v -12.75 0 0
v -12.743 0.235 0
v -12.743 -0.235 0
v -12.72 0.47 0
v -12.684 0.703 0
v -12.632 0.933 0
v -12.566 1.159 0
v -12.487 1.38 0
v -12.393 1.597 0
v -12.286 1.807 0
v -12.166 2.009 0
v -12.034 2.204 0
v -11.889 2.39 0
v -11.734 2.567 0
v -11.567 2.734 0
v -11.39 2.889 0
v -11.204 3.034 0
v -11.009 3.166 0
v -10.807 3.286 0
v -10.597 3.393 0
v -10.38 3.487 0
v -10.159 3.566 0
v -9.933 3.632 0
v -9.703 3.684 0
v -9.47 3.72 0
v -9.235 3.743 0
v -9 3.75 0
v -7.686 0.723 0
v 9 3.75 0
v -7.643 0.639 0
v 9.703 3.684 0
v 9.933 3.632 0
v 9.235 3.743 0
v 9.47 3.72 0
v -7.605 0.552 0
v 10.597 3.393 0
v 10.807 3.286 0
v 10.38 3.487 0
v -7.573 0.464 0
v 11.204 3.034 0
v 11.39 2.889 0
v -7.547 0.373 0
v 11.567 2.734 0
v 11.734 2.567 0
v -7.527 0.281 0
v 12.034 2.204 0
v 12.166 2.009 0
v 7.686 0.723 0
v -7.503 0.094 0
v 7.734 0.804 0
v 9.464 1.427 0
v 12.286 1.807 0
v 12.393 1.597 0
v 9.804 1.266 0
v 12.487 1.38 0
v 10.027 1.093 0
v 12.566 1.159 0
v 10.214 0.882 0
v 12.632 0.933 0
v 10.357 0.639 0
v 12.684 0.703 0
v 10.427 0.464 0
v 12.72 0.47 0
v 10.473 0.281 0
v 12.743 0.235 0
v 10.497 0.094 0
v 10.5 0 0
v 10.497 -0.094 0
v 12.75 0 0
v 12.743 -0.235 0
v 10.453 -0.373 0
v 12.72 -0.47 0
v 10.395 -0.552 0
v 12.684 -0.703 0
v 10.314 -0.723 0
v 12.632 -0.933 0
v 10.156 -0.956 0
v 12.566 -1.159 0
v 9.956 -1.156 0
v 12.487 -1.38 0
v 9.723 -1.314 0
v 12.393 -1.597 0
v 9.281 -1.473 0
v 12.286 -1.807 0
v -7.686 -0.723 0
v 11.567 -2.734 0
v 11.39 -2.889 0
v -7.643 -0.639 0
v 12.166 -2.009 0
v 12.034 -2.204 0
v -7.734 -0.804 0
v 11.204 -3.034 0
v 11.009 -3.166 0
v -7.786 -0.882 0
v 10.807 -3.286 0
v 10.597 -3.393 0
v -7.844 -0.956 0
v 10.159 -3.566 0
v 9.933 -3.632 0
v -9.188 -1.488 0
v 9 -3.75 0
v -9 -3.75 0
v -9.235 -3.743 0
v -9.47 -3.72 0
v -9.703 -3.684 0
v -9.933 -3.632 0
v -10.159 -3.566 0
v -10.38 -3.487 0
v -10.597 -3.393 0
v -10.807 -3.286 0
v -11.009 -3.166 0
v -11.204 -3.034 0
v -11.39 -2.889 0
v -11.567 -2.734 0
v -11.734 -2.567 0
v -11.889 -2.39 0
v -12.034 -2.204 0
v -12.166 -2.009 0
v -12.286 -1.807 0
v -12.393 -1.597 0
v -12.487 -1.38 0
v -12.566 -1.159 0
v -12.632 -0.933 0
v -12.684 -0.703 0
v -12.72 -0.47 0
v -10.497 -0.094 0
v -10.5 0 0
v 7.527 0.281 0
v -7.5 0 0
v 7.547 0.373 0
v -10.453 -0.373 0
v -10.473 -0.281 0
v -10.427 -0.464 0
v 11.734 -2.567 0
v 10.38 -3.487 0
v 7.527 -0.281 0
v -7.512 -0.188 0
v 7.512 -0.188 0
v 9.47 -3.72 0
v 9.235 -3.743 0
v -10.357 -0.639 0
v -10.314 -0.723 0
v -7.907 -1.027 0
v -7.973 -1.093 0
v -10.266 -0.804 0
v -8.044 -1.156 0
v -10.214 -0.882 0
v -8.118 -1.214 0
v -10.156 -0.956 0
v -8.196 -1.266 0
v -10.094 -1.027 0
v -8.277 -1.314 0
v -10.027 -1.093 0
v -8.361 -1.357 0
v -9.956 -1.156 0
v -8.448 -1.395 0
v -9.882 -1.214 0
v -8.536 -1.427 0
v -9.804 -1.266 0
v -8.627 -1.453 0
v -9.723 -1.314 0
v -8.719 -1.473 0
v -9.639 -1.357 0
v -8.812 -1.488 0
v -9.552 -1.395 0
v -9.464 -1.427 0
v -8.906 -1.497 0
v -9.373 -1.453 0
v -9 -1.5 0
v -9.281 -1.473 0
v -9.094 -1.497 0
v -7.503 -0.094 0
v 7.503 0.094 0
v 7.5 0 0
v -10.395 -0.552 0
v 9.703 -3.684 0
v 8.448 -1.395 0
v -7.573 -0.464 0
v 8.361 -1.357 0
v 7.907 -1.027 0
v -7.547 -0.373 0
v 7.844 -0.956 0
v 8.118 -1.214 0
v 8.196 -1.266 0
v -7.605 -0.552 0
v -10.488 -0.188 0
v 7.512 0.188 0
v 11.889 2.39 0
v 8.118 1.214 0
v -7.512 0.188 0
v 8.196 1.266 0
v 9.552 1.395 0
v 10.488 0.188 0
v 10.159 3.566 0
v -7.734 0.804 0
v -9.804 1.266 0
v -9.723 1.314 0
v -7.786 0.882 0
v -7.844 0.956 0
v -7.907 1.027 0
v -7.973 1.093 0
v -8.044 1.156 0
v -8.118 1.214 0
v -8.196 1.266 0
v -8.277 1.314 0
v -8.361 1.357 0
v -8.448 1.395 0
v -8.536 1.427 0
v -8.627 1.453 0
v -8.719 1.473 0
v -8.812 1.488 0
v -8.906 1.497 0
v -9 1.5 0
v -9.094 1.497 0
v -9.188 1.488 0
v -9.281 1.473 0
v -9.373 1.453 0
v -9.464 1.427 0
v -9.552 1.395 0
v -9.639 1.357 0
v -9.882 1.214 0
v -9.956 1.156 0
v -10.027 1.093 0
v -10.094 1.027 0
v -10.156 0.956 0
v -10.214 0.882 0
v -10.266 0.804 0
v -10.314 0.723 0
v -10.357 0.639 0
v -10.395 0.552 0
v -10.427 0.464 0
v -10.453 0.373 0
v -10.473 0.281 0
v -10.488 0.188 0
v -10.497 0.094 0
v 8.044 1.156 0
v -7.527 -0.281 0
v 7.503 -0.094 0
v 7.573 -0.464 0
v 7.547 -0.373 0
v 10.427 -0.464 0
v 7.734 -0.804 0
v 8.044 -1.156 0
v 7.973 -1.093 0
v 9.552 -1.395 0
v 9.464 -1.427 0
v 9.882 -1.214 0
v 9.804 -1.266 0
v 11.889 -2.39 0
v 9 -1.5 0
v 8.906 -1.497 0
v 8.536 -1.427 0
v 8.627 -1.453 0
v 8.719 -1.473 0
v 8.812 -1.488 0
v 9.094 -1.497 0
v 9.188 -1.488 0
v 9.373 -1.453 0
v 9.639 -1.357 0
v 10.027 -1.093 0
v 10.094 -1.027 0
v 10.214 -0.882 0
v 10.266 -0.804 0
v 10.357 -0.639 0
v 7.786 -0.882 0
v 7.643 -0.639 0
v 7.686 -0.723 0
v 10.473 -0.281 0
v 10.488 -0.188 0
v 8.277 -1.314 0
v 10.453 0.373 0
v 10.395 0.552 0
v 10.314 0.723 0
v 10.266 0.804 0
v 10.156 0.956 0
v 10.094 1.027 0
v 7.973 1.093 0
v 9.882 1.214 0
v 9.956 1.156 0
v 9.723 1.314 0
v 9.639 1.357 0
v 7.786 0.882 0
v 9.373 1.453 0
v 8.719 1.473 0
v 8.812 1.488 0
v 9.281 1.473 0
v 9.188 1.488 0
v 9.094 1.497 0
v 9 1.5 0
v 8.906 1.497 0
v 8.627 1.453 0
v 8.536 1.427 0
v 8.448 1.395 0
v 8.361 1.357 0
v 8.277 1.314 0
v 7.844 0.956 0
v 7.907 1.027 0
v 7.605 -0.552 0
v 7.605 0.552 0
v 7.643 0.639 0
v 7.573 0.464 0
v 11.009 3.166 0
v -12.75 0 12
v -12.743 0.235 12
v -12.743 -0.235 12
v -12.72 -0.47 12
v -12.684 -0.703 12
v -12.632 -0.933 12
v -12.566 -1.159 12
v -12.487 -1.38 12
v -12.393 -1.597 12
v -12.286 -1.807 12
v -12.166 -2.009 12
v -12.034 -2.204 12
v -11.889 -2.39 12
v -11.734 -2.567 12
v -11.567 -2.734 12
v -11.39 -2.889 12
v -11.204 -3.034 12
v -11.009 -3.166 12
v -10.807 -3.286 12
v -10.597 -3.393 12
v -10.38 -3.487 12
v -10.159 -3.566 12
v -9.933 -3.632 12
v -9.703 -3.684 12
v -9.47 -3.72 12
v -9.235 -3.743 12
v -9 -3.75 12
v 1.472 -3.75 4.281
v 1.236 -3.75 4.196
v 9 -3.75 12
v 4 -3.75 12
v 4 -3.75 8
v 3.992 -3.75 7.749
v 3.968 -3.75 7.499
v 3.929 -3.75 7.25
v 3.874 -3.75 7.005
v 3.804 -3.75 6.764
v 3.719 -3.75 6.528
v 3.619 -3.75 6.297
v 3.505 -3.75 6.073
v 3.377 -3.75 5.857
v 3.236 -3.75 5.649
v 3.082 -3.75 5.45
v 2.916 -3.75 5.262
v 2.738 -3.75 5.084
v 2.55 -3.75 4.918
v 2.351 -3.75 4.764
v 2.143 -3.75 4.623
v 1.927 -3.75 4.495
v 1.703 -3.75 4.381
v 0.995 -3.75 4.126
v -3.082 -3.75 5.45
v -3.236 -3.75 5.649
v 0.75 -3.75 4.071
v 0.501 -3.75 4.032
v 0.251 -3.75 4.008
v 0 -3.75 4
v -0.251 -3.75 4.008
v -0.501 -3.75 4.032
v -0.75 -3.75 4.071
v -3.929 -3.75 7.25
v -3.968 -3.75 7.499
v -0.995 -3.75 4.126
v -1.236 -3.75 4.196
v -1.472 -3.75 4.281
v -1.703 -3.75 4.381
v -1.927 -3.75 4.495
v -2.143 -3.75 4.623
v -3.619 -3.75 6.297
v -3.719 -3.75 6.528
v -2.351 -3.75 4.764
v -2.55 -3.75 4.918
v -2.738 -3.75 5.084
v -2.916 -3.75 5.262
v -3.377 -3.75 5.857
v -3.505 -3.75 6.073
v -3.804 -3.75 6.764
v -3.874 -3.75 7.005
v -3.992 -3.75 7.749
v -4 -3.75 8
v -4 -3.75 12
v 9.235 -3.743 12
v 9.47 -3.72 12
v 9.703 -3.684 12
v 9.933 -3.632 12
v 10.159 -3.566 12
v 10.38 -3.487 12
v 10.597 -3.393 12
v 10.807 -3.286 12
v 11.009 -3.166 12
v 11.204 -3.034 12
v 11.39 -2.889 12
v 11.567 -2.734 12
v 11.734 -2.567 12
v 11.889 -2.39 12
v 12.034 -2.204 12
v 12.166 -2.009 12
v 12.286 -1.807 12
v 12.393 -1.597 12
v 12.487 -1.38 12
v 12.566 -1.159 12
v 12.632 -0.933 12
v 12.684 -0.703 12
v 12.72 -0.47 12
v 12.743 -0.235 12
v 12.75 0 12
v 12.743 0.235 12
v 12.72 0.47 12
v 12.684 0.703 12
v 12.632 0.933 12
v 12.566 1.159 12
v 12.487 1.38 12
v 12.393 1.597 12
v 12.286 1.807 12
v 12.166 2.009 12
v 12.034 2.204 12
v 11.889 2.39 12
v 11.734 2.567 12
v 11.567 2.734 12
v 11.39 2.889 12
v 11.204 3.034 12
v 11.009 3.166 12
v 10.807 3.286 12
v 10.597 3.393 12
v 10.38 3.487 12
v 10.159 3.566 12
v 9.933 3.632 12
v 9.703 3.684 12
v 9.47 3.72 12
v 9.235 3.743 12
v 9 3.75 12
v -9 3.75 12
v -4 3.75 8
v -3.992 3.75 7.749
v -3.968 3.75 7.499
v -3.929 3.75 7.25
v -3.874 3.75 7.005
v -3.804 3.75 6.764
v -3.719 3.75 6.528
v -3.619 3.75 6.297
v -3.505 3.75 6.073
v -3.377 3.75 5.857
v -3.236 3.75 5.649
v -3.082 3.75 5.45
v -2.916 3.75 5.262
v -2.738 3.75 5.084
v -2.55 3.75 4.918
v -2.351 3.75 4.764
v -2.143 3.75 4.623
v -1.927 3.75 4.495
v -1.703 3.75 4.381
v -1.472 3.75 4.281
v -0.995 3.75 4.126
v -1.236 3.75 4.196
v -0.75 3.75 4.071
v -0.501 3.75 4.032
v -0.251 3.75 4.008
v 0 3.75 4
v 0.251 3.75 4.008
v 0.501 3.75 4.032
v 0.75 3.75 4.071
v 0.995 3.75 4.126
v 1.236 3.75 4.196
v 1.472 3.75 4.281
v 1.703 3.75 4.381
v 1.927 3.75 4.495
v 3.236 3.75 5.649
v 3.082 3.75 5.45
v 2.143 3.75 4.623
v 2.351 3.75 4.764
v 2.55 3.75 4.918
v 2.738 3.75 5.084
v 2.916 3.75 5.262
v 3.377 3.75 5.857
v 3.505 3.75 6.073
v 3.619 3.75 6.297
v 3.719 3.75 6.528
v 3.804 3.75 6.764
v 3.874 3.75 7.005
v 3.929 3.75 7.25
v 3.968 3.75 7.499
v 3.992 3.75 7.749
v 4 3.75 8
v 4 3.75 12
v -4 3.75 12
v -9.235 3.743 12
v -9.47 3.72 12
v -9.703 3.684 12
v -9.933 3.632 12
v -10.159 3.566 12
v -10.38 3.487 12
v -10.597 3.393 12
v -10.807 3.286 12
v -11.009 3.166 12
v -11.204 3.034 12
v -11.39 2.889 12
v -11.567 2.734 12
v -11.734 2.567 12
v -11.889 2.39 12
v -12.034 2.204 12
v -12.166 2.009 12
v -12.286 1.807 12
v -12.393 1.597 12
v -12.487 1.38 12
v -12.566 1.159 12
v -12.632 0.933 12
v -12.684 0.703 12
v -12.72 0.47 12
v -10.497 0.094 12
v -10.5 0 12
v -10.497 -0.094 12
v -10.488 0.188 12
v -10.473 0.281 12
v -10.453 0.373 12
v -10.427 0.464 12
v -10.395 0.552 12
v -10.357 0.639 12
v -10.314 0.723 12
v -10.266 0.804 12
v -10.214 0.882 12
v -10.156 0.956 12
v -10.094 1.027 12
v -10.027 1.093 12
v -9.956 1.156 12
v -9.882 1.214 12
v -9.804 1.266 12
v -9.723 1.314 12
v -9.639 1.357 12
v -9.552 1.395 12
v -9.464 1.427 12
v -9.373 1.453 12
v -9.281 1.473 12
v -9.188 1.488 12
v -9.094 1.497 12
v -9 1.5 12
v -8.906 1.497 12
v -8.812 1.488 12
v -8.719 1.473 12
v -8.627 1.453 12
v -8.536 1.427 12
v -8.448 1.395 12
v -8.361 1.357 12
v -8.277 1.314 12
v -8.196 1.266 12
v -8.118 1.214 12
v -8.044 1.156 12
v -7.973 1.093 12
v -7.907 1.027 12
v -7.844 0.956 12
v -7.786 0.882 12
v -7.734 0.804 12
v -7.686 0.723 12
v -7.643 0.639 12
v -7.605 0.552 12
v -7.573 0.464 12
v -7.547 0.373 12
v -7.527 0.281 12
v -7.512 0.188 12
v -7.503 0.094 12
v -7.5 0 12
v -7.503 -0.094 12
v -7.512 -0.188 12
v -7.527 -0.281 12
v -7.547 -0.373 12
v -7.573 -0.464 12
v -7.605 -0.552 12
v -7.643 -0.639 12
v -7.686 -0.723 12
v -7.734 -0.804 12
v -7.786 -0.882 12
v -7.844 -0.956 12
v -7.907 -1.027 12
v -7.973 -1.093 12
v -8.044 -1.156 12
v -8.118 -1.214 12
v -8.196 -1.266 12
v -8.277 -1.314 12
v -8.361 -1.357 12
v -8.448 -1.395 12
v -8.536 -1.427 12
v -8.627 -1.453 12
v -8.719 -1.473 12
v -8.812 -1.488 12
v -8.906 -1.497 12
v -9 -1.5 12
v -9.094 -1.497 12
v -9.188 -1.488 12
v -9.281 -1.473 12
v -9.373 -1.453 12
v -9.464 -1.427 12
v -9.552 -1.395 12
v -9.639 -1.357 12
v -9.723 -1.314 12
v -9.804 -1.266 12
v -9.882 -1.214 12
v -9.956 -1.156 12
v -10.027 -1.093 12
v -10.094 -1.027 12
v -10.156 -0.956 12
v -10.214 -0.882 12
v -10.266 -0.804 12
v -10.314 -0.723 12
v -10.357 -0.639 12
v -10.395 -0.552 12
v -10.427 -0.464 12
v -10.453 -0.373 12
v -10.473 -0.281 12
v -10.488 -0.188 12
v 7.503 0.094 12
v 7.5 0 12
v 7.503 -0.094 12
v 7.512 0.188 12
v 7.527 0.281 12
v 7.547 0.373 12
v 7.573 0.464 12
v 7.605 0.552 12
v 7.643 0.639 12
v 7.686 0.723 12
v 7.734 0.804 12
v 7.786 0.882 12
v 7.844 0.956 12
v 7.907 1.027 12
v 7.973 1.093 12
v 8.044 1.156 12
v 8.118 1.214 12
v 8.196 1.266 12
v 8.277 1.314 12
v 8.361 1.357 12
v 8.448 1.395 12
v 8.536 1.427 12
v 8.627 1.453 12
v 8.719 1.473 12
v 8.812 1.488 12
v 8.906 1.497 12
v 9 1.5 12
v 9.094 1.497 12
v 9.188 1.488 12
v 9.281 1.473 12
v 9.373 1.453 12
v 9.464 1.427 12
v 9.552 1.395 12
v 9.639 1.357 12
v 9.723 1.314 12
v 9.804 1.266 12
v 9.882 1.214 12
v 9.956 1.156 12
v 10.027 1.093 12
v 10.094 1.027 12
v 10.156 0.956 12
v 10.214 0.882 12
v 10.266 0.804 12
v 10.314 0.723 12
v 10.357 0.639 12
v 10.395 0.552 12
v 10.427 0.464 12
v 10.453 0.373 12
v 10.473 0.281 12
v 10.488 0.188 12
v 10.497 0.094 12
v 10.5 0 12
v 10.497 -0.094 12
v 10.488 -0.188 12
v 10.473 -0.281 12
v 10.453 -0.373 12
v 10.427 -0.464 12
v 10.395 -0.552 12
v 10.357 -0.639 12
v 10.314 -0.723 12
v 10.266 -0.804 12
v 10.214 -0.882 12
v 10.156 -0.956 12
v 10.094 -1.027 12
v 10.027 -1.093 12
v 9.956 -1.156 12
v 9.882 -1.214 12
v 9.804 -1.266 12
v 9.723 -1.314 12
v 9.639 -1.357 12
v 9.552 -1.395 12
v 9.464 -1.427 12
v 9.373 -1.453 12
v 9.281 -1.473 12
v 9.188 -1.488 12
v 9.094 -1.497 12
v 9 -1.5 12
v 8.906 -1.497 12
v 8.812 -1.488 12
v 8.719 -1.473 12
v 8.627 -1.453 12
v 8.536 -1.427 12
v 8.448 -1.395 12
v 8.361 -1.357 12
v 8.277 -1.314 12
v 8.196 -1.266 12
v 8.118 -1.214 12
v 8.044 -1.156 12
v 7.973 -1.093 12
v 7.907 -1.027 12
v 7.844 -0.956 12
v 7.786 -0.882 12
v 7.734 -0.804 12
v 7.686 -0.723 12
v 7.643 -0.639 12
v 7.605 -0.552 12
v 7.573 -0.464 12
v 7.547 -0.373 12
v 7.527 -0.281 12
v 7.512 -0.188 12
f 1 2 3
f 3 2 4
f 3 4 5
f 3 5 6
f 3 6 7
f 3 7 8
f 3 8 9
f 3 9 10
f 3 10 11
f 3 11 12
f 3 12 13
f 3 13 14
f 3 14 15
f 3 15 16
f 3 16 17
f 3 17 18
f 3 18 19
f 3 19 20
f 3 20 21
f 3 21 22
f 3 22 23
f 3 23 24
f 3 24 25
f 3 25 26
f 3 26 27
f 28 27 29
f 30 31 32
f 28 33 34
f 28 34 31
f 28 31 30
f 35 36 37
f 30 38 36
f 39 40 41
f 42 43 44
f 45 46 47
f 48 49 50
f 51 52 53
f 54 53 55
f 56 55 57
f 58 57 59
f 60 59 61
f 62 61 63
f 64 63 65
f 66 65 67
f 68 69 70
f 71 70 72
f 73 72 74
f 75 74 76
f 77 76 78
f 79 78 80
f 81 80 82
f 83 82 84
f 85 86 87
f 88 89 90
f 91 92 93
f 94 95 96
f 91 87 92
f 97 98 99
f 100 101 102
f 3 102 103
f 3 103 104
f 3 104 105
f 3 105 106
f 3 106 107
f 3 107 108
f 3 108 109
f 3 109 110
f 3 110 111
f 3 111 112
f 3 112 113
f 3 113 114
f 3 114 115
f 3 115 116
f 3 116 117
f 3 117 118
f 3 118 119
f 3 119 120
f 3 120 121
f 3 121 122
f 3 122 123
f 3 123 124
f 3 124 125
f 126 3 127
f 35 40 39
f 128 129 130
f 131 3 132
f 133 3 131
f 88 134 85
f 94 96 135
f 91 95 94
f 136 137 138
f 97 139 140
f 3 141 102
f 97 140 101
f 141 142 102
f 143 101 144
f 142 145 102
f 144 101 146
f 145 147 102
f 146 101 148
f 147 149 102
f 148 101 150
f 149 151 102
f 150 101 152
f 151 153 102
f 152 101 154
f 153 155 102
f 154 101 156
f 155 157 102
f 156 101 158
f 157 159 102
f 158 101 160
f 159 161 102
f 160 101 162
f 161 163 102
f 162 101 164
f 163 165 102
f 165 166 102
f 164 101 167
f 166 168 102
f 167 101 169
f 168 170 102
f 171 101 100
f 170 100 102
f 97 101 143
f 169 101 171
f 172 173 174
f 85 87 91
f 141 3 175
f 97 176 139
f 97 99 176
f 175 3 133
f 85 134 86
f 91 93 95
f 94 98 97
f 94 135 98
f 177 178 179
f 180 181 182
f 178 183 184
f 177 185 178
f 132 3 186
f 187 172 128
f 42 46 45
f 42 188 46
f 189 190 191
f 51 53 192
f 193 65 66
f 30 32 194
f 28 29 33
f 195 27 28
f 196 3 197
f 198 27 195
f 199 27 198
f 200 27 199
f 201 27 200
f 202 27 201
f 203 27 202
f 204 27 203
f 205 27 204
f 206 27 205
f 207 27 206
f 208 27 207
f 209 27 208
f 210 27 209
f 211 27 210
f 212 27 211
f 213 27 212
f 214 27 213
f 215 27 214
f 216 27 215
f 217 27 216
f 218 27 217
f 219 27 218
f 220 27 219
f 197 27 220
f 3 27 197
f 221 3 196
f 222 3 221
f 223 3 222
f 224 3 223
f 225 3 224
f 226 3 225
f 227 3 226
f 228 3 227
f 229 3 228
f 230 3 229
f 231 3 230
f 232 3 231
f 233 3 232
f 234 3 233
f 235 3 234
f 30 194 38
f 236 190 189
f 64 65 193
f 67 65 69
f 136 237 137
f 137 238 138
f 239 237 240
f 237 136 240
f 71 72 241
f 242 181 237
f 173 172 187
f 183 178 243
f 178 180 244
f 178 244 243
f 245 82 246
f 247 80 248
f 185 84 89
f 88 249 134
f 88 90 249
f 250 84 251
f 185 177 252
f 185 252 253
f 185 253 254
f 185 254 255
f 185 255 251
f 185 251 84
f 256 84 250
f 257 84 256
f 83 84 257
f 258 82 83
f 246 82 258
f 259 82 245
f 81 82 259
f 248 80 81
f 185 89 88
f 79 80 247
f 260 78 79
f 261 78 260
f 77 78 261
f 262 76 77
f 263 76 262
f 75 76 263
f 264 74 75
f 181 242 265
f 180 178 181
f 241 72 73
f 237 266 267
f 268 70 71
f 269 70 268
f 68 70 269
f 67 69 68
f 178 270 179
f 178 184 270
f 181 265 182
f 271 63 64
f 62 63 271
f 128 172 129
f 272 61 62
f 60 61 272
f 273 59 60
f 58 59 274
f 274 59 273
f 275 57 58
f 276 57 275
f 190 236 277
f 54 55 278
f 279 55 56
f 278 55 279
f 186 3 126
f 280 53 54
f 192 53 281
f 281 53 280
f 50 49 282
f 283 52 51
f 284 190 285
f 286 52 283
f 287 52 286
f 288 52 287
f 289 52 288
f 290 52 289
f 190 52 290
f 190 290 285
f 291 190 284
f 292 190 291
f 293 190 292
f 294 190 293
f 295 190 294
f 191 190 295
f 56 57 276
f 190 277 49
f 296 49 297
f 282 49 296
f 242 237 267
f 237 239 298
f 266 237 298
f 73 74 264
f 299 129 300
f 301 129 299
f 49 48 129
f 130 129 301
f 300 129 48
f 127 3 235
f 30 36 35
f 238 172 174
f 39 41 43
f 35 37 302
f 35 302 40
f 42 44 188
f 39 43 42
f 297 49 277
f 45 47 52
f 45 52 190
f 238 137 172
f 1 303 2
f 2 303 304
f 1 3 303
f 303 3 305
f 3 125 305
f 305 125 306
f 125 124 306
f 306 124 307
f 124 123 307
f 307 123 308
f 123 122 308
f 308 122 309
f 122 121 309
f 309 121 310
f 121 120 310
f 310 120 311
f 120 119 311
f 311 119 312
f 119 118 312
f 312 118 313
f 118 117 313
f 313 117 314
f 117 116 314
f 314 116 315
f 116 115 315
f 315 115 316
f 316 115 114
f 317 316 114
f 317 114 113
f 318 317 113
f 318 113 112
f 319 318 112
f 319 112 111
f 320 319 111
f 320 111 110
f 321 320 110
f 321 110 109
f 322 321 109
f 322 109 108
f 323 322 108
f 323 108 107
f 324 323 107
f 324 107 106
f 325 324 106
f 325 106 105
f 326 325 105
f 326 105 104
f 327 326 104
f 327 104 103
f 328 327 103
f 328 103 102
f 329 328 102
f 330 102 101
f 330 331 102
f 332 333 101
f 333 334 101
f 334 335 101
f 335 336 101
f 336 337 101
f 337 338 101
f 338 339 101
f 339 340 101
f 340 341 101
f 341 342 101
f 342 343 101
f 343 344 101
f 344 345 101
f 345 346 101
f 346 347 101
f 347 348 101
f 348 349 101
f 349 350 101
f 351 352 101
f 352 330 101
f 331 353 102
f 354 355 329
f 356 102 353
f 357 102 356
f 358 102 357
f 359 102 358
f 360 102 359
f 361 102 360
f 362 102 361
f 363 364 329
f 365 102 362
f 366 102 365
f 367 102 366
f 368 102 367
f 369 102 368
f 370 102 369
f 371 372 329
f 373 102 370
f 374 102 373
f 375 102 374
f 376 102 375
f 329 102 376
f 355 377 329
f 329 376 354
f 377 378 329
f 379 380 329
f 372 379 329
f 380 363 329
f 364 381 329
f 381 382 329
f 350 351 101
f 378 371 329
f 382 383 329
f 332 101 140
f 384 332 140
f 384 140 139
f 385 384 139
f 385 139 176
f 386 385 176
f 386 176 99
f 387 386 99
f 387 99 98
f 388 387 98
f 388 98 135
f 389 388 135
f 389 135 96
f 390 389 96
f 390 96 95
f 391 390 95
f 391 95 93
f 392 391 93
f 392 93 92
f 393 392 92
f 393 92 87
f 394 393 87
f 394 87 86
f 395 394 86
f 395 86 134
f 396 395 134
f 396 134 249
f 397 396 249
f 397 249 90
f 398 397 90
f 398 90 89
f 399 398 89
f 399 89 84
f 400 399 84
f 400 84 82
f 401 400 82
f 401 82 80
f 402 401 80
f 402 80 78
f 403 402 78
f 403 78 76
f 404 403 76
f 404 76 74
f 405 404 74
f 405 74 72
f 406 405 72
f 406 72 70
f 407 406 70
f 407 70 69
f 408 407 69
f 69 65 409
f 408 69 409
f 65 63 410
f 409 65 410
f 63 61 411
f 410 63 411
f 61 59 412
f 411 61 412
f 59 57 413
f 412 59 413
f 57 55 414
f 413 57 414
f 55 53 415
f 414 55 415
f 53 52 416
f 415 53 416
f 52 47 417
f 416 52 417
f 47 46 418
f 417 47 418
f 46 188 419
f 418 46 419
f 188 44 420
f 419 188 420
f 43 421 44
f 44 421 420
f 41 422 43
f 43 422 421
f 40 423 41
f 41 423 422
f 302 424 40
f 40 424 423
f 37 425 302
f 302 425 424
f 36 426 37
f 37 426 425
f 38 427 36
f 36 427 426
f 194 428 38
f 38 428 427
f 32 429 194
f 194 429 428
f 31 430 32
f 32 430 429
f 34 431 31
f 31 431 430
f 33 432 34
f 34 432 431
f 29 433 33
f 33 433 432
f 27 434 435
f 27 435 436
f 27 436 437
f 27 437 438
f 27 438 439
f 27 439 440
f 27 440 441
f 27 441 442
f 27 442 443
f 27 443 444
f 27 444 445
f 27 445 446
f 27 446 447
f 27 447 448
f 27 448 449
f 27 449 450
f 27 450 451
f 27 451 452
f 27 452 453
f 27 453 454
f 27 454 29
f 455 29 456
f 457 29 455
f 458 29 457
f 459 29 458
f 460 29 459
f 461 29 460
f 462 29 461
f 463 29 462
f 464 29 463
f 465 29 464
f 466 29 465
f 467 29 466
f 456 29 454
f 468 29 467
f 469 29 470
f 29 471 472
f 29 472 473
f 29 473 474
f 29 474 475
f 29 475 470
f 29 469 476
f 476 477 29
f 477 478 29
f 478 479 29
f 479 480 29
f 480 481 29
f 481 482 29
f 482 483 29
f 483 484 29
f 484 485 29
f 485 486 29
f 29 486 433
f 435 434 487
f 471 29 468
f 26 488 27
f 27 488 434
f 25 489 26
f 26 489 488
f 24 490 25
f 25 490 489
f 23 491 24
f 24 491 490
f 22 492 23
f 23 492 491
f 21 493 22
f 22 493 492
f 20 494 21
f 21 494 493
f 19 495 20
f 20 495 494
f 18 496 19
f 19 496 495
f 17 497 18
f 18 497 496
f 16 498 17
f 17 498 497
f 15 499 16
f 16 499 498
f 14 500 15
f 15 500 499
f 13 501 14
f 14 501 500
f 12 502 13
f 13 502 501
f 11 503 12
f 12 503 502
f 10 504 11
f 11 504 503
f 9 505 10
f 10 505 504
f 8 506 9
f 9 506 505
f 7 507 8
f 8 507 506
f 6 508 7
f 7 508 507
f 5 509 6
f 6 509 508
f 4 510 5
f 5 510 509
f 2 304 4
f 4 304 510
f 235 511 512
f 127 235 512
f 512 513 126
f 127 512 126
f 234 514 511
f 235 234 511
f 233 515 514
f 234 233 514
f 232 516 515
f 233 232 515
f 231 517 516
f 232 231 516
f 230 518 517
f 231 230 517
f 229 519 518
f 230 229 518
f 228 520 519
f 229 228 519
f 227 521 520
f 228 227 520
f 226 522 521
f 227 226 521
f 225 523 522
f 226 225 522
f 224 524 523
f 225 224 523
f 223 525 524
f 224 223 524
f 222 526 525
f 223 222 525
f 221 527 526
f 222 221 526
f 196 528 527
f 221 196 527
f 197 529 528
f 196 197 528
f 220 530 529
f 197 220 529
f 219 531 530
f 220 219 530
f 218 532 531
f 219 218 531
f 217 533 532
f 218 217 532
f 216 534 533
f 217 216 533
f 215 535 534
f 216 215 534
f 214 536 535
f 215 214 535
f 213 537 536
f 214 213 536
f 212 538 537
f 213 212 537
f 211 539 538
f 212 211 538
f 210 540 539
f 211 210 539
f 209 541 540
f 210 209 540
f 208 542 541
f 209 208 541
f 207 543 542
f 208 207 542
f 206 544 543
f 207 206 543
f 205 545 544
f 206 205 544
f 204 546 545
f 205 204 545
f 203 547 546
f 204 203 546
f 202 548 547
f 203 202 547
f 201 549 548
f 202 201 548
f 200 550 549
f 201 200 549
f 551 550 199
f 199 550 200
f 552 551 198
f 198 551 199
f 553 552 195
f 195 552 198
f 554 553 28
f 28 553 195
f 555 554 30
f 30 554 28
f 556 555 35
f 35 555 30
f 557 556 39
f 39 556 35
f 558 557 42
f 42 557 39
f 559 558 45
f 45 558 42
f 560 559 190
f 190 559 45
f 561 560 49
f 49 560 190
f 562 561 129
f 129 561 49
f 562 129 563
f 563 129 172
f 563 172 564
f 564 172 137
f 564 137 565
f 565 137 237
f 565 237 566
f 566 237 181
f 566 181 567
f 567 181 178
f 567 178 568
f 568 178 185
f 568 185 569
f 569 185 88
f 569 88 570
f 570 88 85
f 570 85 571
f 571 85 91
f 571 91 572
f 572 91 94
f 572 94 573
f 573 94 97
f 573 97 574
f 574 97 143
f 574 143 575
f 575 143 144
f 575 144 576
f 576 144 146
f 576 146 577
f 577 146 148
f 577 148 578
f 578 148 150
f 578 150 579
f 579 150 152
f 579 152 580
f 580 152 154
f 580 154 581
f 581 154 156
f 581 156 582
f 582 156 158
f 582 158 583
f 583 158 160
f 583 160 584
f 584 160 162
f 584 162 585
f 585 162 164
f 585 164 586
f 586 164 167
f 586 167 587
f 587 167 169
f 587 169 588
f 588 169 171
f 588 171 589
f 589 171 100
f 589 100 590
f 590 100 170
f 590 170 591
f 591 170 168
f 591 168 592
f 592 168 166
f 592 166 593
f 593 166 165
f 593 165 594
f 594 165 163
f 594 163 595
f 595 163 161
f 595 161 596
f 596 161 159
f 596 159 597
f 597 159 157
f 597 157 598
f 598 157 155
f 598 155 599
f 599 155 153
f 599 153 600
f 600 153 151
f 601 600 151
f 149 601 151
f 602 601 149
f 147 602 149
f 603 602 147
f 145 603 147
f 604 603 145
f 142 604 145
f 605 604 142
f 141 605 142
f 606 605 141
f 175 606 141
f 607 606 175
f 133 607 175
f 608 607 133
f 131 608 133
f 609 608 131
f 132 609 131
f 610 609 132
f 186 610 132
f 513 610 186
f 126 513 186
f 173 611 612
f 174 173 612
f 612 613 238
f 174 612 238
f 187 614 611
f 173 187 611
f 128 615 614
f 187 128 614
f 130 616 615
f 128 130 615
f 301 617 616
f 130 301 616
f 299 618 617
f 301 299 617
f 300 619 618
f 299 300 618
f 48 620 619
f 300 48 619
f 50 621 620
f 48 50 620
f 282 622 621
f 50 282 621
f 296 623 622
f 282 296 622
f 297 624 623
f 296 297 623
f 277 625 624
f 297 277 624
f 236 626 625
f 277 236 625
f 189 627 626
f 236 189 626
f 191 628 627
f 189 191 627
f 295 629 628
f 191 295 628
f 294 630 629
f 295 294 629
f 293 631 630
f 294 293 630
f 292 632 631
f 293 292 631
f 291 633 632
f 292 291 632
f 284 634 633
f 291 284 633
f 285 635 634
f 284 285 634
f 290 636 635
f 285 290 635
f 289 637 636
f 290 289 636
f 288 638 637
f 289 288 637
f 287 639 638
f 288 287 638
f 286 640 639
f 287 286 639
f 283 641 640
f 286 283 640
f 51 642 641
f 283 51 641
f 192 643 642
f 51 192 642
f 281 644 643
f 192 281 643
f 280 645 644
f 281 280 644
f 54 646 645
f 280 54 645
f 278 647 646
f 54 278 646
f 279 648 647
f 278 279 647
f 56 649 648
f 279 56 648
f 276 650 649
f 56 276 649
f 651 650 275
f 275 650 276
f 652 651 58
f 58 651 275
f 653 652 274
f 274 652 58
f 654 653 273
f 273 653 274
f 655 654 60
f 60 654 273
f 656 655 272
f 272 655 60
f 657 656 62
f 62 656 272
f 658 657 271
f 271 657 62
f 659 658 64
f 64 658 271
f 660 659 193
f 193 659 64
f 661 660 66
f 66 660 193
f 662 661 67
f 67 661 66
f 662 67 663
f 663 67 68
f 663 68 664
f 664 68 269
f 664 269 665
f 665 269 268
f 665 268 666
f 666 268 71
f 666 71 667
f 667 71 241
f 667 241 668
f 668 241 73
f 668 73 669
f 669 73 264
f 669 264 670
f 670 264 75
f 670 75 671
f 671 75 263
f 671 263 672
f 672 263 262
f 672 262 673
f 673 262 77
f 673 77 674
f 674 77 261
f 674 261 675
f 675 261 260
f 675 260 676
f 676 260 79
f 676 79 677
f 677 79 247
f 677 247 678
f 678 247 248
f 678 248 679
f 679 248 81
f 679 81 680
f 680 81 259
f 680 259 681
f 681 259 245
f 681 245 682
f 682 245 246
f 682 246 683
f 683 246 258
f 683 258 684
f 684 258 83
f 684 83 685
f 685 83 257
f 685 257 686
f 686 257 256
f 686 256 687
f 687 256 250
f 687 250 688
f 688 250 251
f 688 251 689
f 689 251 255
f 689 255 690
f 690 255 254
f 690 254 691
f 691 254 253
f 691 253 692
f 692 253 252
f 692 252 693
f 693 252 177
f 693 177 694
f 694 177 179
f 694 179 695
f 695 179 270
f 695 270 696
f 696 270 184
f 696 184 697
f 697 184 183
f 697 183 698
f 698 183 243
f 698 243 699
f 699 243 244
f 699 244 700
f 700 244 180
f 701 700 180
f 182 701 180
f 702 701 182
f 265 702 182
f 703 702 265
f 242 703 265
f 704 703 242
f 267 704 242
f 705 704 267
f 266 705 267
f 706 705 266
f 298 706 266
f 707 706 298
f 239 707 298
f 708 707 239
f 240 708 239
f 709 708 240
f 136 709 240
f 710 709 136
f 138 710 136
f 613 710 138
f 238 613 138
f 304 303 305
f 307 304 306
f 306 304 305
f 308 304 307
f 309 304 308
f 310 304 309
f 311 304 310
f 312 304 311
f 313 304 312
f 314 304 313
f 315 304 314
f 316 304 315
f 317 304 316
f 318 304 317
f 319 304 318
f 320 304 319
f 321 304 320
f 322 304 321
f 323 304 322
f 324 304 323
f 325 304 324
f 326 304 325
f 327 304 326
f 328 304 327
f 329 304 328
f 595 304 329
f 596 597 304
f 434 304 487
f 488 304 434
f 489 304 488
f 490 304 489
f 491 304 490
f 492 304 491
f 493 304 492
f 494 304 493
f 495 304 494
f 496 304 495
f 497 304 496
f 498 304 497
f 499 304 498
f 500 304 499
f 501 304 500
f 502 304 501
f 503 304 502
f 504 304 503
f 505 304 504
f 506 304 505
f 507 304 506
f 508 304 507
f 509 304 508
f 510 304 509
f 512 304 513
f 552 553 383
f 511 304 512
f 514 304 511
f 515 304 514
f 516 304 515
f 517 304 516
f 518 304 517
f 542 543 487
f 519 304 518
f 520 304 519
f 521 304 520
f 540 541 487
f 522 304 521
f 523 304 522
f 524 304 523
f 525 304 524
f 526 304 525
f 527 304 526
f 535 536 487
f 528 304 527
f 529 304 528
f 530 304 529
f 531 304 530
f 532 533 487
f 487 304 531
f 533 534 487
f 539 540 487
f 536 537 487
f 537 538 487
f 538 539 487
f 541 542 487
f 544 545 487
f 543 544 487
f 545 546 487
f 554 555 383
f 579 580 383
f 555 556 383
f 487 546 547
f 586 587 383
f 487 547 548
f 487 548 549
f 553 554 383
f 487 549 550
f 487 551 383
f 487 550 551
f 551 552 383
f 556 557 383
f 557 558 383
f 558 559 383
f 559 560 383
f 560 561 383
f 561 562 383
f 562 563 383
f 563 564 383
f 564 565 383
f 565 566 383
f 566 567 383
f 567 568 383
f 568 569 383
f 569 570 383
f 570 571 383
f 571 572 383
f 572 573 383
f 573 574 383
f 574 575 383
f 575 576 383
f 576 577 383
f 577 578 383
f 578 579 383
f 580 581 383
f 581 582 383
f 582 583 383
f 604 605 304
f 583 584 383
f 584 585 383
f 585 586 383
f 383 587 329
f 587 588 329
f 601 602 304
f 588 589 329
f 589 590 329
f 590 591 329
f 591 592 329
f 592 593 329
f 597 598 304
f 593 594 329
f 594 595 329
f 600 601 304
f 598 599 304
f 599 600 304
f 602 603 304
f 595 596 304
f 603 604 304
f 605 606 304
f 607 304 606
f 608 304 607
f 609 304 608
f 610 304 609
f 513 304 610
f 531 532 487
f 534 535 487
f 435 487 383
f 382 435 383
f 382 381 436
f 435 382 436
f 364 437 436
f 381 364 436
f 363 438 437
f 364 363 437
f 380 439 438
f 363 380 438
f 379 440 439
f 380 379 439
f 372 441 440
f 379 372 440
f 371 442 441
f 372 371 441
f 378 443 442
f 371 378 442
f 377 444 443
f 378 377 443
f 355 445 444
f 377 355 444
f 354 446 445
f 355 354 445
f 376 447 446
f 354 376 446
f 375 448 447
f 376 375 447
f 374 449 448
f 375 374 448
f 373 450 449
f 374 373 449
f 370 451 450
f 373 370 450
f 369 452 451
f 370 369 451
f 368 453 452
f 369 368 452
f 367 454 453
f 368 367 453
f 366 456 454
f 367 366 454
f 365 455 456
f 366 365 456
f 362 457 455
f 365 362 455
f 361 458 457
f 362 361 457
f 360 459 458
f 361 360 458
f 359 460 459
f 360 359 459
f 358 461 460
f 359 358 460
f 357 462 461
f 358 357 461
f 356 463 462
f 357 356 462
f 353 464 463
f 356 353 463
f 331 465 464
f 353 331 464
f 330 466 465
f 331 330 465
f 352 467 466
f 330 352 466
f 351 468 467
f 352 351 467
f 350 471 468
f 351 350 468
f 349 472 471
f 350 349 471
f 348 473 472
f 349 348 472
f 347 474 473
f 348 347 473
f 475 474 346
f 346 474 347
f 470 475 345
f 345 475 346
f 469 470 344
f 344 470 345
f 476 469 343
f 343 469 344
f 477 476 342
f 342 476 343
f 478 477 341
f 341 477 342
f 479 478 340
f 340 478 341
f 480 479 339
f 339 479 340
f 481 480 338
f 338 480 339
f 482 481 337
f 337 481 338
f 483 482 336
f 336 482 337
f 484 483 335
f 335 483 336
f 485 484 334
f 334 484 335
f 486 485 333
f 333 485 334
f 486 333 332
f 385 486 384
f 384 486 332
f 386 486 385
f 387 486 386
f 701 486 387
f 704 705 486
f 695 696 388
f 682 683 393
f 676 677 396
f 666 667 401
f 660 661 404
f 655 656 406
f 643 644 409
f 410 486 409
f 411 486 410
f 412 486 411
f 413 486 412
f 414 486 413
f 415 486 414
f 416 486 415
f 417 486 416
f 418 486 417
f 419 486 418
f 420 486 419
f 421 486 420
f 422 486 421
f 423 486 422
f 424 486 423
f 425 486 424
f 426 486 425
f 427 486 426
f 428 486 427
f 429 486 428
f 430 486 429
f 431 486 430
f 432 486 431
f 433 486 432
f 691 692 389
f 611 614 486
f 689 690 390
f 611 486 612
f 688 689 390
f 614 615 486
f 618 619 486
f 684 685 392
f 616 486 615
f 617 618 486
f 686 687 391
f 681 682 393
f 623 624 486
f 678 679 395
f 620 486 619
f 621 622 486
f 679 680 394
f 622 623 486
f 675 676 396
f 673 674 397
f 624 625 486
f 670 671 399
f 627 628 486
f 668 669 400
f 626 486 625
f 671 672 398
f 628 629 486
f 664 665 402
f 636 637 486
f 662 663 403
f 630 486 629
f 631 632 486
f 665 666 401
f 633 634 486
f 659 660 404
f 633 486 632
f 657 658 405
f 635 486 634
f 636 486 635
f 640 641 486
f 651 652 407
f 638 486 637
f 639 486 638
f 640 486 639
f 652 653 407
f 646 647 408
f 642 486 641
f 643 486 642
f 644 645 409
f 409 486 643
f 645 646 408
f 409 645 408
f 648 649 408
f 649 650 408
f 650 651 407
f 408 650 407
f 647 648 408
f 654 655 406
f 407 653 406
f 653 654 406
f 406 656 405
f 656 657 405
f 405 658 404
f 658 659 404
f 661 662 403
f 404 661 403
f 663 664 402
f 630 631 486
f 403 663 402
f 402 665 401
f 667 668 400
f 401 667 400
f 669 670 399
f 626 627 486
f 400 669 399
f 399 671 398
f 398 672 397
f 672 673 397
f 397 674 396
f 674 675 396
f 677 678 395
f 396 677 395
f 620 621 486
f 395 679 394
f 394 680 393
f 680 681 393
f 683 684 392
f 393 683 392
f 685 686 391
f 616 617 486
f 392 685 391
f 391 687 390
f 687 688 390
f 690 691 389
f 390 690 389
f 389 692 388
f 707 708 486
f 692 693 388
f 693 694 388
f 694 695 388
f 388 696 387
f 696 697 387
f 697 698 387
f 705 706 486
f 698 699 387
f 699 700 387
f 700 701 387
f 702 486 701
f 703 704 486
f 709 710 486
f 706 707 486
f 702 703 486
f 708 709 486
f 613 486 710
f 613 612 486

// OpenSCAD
/* Parametric Rod Clamp, http://www.thingiverse.com/thing:13087
 *
 * Copyright (c) 2011  Henrik Brix Andersen <henrik@brixandersen.dk>
 * License: CC BY-SA
 */

// Rendering
$fn = 100;

module clamp(rod_d, screw_d, screw_dist, rounded) {
	rod_r = rod_d / 2;
	screw_r = screw_d / 2;
	clamp_w = screw_dist + 2.5 * screw_d;
	clamp_h = screw_d * 2.5;
	clamp_d = rod_d * 1.5;

	difference() {
		// Main cube
		if (rounded) {
			union() {
				translate([0, 0, clamp_d / 2]) {
					cube(size = [clamp_w - clamp_h, clamp_h, clamp_d], center = true);
				}
				translate([-1 * screw_dist / 2, 0, 0]) {
					cylinder(h = clamp_d, r = clamp_h / 2);
				}
				translate([screw_dist / 2, 0, 0]) {
					cylinder(h = clamp_d, r = clamp_h / 2);
				}
			}
		} else {
			translate([0, 0, clamp_d / 2]) {
				cube(size = [clamp_w, clamp_h, clamp_d], center = true);
			}
		}

		// Hole for rod
		translate([0, clamp_h, rod_d]) {
			rotate([90, 0, 0]) {
				#cylinder(h = clamp_h * 2, r = rod_r);
			}
		}
		translate([0, 0, rod_d * 1.5]) {
			cube(size = [rod_d, clamp_h * 2, rod_d], center = true);
		}

		// Left screw hole
		translate([-1 * screw_dist / 2, 0, -0.5 * clamp_d]) {
			#cylinder(h = clamp_d * 2, r = screw_r);

		}

		// Right screw hole
		translate([screw_dist / 2, 0, -0.5 * clamp_d]) {
			#cylinder(h = clamp_d * 2, r = screw_r);
		}
	}
}

clamp(8, 3, 18, true);
